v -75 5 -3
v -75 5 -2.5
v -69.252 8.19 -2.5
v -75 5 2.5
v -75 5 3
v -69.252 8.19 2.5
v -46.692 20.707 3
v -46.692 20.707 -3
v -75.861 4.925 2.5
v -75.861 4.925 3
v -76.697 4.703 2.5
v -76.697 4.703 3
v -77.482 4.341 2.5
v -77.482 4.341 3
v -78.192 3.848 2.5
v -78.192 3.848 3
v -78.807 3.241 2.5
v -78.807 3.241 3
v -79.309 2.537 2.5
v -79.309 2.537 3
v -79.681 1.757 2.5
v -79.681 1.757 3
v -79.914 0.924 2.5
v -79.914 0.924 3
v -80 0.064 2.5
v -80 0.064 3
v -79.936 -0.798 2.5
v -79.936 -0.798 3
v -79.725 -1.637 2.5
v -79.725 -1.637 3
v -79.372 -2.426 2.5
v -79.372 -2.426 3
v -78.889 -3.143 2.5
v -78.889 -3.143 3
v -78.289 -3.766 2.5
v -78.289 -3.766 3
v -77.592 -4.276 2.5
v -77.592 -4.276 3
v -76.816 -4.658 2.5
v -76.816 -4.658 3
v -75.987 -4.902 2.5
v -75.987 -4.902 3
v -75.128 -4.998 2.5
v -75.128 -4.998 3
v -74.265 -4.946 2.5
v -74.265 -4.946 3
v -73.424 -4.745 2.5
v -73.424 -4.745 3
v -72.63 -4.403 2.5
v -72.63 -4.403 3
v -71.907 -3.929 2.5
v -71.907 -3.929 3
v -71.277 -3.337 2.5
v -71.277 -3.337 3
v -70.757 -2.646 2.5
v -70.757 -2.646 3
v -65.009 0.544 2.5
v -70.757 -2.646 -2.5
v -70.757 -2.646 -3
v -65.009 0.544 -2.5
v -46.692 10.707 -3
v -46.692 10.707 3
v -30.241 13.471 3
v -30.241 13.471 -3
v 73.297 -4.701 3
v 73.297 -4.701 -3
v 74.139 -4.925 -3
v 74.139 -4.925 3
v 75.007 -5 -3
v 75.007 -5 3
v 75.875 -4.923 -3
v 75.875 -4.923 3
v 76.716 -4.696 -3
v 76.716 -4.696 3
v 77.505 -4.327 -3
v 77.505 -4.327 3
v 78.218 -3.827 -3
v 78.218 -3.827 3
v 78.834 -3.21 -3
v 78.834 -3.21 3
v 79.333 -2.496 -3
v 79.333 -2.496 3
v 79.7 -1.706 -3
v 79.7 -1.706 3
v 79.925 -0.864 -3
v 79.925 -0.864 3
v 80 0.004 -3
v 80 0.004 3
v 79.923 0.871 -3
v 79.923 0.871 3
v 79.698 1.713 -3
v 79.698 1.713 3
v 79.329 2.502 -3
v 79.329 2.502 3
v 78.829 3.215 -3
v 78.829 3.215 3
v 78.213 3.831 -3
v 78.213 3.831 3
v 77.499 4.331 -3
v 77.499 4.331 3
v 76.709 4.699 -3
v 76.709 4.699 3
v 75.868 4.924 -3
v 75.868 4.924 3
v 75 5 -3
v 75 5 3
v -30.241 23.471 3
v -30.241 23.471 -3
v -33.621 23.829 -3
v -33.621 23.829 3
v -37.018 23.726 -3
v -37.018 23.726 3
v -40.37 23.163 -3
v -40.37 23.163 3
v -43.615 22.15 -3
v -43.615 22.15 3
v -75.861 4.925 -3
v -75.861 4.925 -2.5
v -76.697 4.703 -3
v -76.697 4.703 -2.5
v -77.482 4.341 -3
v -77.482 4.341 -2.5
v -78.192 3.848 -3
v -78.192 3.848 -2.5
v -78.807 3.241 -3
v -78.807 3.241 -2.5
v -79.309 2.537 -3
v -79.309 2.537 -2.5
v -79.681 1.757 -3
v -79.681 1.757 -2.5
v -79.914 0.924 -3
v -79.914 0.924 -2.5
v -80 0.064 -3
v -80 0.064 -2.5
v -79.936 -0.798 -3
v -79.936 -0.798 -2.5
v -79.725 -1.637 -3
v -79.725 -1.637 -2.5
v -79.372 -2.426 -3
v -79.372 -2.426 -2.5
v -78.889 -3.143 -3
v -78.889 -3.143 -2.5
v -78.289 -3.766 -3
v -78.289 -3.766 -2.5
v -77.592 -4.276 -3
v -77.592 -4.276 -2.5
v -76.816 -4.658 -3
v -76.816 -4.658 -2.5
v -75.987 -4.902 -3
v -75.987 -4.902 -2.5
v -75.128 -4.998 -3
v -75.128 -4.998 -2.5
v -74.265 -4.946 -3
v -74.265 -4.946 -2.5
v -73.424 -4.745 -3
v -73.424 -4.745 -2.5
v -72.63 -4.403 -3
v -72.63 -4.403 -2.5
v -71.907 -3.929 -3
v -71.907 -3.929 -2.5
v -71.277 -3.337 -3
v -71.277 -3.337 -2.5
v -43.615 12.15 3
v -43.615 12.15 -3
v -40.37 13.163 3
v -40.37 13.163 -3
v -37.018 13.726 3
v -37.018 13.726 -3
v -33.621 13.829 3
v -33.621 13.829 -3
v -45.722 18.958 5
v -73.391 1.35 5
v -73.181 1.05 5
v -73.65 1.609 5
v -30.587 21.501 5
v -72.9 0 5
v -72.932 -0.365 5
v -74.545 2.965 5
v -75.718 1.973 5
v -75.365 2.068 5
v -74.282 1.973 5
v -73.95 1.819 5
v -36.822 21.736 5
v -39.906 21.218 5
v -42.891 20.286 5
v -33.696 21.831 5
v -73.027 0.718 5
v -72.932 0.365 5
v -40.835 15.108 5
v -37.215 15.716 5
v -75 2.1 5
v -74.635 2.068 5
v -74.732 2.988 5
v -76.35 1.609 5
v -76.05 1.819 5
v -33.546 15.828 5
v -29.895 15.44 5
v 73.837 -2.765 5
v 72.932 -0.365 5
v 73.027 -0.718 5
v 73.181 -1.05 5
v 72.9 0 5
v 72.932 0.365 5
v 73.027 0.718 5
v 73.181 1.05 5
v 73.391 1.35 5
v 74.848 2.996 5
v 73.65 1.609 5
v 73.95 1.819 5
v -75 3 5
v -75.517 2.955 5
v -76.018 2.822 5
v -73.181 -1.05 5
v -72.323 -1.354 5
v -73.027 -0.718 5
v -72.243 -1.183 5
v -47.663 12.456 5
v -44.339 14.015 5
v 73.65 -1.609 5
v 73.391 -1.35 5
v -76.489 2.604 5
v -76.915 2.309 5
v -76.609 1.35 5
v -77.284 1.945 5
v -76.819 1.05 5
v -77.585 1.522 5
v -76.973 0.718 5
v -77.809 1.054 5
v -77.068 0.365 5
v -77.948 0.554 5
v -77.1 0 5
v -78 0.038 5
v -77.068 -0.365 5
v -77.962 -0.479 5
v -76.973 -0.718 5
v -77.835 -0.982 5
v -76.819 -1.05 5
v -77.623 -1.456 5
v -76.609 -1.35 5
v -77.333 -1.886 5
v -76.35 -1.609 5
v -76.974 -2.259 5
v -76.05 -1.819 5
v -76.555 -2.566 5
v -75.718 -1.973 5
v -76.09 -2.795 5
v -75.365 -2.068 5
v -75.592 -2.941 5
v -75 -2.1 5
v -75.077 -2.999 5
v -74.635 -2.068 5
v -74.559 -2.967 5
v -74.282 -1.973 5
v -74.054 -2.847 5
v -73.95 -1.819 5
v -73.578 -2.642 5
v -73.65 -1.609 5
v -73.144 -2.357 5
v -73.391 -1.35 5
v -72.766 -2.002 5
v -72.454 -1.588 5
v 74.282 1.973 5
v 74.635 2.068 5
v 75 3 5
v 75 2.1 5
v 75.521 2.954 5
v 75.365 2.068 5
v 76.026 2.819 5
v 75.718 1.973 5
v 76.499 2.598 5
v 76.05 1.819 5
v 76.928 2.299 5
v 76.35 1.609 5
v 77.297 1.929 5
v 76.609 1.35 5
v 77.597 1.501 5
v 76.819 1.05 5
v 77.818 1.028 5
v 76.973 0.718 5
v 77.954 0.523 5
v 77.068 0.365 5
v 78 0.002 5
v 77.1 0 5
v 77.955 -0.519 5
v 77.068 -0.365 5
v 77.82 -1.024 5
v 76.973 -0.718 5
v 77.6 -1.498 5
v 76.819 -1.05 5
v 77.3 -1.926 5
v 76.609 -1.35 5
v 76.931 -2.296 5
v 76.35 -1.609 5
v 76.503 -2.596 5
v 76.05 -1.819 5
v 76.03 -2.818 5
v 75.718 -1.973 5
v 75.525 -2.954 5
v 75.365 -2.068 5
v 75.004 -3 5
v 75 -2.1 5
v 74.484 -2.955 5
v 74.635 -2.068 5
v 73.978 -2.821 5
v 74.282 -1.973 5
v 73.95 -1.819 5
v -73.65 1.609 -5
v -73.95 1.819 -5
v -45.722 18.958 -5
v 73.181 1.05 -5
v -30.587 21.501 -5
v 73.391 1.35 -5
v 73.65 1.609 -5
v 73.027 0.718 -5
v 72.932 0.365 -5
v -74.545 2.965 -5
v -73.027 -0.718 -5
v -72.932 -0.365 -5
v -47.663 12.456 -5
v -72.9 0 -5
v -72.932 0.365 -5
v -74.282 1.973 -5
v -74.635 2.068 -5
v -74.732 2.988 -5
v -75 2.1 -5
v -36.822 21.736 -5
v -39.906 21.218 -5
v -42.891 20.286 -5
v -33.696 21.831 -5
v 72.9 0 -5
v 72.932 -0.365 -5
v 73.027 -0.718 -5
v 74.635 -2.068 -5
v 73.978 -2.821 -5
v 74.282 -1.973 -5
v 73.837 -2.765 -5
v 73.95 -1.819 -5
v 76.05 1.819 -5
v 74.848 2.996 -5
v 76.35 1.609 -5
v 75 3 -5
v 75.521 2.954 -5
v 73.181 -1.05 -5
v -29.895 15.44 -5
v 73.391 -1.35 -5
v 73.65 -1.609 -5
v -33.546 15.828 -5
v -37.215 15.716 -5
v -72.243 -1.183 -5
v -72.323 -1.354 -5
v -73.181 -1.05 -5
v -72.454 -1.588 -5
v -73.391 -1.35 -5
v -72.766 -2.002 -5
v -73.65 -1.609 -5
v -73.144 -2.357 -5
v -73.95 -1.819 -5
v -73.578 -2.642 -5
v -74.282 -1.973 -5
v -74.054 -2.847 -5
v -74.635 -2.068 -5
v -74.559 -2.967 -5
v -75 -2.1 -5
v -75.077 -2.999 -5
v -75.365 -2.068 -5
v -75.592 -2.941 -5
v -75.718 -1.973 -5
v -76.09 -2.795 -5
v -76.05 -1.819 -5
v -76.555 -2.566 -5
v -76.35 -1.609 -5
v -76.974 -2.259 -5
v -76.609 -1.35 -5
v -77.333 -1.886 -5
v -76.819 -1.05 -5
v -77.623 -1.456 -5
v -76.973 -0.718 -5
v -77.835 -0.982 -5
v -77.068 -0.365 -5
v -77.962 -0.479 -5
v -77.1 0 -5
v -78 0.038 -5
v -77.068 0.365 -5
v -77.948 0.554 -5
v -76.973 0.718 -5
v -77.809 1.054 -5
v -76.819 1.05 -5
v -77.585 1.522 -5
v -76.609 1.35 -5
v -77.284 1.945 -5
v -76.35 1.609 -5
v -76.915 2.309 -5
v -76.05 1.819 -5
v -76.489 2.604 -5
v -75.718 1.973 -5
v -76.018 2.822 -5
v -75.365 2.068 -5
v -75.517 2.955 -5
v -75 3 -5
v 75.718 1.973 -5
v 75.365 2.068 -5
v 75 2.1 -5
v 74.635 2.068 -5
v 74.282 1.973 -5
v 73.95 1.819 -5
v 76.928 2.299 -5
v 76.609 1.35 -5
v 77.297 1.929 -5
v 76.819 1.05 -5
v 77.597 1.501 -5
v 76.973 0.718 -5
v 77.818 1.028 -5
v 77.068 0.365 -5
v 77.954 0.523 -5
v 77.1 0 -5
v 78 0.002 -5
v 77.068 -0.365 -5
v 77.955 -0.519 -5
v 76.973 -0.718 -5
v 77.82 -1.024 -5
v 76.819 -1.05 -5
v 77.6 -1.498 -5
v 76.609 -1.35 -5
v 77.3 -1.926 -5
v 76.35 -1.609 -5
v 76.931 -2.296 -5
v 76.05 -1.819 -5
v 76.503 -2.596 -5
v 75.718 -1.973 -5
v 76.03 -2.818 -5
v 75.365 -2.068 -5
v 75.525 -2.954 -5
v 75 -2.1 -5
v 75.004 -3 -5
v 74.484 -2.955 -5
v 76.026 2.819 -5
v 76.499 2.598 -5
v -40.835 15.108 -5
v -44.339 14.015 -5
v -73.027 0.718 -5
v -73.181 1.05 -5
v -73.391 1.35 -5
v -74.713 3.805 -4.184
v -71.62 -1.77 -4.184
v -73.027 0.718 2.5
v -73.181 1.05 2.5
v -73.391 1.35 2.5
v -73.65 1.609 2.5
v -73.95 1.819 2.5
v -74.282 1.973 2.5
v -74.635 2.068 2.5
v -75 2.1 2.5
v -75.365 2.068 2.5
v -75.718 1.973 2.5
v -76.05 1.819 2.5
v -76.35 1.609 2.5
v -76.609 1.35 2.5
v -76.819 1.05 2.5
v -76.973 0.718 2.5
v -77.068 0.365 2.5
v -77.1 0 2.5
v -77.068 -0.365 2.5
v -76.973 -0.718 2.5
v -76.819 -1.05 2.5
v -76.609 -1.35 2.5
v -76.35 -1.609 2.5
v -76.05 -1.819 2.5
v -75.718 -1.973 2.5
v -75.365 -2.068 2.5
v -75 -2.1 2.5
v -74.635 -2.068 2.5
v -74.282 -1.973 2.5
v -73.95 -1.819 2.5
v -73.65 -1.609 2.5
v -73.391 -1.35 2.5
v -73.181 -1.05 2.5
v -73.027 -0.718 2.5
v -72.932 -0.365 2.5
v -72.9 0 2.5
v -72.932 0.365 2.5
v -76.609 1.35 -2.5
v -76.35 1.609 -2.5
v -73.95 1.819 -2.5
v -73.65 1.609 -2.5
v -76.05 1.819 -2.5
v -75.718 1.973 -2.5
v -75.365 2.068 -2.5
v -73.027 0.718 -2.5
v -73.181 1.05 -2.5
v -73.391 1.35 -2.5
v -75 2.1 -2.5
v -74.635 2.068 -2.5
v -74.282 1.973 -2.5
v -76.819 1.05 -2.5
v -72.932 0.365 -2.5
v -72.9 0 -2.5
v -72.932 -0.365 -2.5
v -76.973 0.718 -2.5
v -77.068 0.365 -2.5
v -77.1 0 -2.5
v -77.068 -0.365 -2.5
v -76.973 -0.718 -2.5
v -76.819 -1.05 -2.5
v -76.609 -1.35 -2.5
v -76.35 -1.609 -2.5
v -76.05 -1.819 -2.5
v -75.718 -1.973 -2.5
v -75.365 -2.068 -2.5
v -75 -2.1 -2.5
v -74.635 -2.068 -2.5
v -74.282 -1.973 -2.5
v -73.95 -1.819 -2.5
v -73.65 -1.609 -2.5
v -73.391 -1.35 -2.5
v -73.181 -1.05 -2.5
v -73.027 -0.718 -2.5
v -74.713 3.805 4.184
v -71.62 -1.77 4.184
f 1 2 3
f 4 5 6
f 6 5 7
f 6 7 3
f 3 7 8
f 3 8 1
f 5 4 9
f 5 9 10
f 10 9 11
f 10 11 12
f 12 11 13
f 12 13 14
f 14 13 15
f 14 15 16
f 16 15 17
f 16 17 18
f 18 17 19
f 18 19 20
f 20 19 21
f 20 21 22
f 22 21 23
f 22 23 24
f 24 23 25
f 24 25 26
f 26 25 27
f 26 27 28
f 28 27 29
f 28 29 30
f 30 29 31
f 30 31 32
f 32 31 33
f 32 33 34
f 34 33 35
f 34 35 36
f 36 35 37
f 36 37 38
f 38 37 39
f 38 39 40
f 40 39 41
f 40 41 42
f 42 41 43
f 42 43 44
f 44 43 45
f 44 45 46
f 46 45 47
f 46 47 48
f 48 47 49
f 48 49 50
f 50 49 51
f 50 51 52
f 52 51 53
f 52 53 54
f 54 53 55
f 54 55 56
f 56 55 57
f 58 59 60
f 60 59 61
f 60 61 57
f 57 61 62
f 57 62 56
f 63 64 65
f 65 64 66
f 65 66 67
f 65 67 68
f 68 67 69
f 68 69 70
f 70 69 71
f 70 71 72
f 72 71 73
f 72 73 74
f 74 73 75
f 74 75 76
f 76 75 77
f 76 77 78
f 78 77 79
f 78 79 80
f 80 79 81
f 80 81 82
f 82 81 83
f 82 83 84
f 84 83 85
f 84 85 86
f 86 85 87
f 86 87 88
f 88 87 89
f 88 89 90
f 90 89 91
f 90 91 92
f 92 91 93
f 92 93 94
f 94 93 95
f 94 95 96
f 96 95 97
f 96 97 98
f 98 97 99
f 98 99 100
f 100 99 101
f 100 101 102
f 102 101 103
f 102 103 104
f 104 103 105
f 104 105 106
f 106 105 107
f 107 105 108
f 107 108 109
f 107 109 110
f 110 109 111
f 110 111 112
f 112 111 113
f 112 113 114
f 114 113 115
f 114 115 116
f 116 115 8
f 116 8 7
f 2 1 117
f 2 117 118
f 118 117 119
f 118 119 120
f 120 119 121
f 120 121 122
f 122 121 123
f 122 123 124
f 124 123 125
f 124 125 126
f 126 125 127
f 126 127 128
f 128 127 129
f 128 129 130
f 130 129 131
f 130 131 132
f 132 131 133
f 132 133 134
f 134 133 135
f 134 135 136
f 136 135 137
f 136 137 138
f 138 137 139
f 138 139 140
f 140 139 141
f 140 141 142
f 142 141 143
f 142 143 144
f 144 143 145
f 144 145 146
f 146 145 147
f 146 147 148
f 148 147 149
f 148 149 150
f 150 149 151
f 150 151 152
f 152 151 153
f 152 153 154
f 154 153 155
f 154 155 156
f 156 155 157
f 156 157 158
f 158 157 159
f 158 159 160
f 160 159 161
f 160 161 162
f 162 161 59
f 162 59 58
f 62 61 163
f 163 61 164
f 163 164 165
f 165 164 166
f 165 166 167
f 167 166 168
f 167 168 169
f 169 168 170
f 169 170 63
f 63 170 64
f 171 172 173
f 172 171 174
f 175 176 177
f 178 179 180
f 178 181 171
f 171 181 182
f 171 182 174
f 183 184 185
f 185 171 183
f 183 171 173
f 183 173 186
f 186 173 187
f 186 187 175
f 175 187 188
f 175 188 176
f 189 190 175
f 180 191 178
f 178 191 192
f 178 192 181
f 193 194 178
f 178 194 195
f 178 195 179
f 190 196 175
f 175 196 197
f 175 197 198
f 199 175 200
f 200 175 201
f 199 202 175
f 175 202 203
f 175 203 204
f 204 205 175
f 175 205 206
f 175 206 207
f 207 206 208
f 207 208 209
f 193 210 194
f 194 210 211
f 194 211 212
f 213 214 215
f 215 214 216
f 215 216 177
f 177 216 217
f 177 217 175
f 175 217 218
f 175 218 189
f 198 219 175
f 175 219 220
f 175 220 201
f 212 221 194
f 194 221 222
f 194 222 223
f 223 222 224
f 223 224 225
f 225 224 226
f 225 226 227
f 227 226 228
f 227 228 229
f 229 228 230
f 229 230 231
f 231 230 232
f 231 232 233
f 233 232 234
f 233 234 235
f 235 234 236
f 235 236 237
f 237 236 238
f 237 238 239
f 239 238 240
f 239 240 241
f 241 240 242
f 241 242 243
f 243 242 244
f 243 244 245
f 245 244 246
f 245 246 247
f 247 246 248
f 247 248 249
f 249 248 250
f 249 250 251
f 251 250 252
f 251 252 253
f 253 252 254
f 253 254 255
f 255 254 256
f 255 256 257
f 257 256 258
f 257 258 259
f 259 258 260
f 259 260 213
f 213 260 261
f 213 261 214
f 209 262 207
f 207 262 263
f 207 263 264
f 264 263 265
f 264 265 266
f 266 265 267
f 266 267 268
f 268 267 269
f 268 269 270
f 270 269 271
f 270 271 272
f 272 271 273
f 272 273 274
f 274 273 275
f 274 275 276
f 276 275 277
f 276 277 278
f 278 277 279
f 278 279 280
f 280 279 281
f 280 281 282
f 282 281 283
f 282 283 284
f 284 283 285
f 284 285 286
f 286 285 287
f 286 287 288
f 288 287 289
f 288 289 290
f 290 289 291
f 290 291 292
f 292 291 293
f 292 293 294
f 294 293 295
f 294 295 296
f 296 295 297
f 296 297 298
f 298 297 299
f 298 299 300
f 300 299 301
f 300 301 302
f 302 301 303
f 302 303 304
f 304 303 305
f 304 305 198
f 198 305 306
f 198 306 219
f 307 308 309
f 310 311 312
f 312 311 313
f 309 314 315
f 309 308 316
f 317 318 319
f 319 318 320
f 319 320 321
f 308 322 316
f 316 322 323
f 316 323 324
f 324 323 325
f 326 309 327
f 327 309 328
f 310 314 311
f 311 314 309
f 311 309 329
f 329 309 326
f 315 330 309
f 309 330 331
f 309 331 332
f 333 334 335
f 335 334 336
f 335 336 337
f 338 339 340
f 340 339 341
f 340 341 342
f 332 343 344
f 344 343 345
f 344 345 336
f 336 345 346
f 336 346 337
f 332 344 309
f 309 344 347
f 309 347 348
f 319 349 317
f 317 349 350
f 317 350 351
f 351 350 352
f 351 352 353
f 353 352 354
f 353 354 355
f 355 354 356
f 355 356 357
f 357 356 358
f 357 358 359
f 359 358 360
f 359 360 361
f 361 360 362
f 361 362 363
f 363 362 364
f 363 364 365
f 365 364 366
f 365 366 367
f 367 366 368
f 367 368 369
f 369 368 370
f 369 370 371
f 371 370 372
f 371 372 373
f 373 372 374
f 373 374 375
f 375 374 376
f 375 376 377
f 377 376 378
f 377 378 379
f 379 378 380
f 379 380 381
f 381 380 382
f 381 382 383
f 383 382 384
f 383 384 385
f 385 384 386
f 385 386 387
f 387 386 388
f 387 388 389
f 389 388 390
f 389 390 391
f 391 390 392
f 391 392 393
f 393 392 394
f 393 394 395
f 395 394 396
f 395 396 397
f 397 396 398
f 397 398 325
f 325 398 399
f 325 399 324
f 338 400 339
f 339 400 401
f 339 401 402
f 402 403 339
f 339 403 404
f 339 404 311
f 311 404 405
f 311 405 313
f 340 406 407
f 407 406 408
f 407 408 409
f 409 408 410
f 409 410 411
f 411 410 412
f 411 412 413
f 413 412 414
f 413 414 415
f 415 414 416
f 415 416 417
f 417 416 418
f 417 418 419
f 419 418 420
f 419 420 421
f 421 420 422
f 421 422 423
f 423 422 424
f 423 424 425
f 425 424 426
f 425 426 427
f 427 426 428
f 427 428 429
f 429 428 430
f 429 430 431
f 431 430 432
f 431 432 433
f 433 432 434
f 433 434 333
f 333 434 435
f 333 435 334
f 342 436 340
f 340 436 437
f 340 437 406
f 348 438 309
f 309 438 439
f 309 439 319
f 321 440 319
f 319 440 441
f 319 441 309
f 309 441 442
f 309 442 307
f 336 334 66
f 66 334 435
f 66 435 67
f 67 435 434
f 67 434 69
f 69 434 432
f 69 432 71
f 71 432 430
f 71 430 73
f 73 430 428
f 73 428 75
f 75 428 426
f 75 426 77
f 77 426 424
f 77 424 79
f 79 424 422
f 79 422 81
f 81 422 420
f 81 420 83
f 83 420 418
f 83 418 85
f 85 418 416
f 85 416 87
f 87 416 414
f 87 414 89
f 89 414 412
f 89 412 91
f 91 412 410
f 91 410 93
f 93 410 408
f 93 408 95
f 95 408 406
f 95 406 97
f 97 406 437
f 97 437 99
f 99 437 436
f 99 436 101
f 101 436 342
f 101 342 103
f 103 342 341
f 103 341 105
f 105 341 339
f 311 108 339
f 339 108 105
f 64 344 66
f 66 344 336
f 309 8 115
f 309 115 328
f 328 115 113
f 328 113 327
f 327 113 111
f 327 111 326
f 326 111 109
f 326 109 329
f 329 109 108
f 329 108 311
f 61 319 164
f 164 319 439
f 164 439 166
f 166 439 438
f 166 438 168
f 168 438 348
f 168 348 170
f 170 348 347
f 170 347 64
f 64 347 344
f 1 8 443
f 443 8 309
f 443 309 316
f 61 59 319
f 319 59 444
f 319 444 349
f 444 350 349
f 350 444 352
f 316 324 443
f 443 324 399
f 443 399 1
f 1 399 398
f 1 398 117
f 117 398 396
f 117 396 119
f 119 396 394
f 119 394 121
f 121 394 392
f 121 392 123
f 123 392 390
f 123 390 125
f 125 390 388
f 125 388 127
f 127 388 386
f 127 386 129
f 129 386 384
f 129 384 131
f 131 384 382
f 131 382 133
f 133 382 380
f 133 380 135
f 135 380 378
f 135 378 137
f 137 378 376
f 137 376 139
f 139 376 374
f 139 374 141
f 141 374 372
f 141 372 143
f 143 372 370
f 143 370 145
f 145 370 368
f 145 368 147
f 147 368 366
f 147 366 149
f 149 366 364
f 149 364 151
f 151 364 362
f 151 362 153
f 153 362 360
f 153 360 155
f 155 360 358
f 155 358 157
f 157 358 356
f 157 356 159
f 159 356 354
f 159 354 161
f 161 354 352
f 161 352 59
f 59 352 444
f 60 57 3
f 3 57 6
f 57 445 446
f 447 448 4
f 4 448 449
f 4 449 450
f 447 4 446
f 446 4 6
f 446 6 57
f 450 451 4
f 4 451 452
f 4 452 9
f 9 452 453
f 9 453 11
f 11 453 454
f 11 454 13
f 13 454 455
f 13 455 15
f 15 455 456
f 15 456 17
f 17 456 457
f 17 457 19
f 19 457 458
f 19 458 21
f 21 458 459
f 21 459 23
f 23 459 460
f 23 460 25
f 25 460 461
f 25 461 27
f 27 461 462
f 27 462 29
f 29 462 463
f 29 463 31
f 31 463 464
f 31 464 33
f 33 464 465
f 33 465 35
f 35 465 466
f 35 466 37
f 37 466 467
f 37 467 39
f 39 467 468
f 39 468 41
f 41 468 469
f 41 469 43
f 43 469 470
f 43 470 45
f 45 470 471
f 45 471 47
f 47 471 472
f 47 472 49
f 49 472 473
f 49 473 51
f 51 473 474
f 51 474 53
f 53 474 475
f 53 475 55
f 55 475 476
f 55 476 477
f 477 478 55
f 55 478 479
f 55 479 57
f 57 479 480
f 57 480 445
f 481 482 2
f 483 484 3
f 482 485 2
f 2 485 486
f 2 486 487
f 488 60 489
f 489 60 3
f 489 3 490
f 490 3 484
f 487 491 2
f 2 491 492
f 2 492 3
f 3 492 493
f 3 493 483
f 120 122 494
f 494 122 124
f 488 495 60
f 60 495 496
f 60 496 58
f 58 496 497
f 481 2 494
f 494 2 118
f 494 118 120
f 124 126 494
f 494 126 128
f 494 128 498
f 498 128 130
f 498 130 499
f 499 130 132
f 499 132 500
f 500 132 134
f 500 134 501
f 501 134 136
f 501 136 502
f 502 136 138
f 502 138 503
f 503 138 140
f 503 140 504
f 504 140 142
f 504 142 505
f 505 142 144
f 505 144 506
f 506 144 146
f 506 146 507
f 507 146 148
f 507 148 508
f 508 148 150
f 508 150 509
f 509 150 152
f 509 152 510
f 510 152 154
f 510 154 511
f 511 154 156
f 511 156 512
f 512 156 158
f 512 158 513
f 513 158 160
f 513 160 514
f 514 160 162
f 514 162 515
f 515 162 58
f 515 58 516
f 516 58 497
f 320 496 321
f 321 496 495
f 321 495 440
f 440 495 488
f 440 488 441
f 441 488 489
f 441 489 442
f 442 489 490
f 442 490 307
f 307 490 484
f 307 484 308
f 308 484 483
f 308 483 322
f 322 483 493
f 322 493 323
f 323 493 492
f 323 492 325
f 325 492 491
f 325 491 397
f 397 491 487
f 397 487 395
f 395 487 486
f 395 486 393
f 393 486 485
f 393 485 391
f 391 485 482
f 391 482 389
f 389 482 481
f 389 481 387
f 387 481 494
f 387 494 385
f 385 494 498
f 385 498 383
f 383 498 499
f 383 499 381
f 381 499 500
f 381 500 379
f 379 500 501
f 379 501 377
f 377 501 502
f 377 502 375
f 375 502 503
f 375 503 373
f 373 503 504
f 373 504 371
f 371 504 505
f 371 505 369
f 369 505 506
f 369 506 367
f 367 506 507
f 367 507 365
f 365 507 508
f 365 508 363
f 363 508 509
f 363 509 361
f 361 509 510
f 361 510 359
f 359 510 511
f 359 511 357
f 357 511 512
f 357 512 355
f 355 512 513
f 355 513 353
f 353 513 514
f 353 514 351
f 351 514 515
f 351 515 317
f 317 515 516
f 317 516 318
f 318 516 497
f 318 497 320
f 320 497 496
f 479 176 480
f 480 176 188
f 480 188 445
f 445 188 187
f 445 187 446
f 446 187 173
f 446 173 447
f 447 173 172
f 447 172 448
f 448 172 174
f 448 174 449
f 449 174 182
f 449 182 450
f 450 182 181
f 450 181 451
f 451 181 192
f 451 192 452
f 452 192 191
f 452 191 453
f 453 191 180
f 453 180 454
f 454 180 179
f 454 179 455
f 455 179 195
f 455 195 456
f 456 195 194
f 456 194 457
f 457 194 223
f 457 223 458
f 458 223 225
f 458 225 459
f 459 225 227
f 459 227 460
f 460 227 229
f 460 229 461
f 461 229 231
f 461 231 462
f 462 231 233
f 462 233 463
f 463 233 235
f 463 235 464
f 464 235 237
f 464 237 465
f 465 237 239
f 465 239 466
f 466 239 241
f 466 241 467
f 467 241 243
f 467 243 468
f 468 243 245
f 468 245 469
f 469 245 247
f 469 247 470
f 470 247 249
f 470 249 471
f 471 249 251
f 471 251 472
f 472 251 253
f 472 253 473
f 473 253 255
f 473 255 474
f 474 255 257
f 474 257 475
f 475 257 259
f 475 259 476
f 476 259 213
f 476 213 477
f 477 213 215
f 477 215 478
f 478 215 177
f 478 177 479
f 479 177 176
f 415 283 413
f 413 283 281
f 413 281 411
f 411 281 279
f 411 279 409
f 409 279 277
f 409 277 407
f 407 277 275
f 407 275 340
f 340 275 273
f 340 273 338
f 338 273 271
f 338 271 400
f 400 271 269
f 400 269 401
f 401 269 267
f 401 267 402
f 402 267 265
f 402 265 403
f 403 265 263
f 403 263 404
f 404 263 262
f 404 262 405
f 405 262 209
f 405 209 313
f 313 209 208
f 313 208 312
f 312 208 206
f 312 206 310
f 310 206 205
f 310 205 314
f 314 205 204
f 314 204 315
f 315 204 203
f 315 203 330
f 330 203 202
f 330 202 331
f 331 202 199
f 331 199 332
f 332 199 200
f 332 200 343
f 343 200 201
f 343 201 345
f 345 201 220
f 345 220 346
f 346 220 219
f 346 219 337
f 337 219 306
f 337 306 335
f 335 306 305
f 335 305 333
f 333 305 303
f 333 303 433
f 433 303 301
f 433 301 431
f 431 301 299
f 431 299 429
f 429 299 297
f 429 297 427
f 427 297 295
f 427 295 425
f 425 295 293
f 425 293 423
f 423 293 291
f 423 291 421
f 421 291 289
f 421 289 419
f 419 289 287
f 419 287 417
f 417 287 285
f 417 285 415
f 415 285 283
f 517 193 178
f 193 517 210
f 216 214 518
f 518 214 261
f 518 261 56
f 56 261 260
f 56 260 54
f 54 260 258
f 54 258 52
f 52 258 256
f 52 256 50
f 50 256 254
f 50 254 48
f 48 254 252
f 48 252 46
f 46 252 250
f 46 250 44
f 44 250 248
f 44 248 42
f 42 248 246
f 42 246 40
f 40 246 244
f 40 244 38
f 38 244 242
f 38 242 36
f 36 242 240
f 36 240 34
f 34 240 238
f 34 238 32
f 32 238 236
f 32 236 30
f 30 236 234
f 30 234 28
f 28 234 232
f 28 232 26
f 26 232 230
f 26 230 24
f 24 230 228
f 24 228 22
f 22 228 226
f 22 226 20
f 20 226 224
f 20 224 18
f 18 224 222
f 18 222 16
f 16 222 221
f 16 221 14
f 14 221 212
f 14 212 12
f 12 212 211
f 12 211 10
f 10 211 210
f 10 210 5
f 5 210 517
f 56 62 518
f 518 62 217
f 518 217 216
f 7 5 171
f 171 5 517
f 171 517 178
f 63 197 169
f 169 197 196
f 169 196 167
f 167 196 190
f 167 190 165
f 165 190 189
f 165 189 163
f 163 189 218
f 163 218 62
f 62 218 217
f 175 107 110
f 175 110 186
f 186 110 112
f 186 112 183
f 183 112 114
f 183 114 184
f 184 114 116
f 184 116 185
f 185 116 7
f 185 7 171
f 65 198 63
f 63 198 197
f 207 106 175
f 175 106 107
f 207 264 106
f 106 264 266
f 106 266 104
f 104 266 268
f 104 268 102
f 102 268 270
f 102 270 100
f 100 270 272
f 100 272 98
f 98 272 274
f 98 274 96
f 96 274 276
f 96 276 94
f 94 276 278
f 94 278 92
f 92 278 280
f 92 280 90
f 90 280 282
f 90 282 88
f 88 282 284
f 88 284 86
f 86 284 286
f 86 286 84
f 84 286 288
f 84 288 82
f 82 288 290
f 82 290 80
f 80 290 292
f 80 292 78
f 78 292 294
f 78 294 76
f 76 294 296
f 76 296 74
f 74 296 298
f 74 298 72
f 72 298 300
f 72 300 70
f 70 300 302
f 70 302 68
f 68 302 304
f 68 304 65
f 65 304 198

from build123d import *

# Parameters (mm, degrees)
BOSS_EXTRUDE2_DEPTH     = 5
CHAMFER2_SIZE           = 2
CUT_EXTRUDE2_DEPTH      = 4
CUT_EXTRUDE2_DEPTH_BACK = 14
SKETCH3_W               = 18
SKETCH3_H               = 5
SKETCH4_R               = 2.1
CUT_EXTRUDE3_DEPTH      = 85.075405536
CHAMFER3_SIZE           = 2


with BuildPart() as part:
    # Sketch1 → Boss-Extrude2 (new, symmetric)
    with BuildSketch(Plane.XY):
        with BuildLine():
            ThreePointArc((-75, 5), (-79.372054336, -2.425930931), (-70.757479261, -2.645943647))
            Line((-70.757479261, -2.645943647), (-46.692296896, 10.707154411))
            ThreePointArc((-46.692296896, 10.707154411), (-38.703947646, 13.501488579), (-30.241024495, 13.470522187))
            Line((-30.241024495, 13.470522187), (73.297376685, -4.701177921))
            ThreePointArc((73.297376685, -4.701177921), (79.924727891, -0.864323549), (75, 5))
            Line((75, 5), (-30.241024495, 23.470522187))
            ThreePointArc((-30.241024495, 23.470522187), (-38.703947646, 23.501488579), (-46.692296896, 20.707154411))
            Line((-46.692296896, 20.707154411), (-75, 5))
        make_face()
    extrude(amount=BOSS_EXTRUDE2_DEPTH, both=True)

    # Chamfer2
    chamfer2_edges = [part.edges().sort_by_distance(p)[0] for p in [
        (-79.372054336, -2.425930931, -5),
        (-60.846148448, 12.853577206, -5),
        (-38.703947646, 23.501488579, -5),
        (22.379487752, 14.235261094, -5),
        (79.924727891, -0.864323549, -5),
        (21.528176095, 4.384672133, -5),
        (-38.703947646, 13.501488579, -5),
        (-58.724888079, 4.030605382, -5),
    ]]
    chamfer(chamfer2_edges, length=CHAMFER2_SIZE)

    # Sketch3 → Cut-Extrude2 (cut, two sides: drawn at the far end of the back side and taken through both)
    with BuildSketch(Plane(origin=(-19.776683018, 35.641877363, 0), x_dir=(0.8744108672058327, 0.48518618623405146, 0), z_dir=(-0.48518618623405146, 0.8744108672058327, 0)).offset(-CUT_EXTRUDE2_DEPTH_BACK)):
        with Locations((-65.58081504, 0)):
            Rectangle(SKETCH3_W, SKETCH3_H)
    extrude(amount=CUT_EXTRUDE2_DEPTH + CUT_EXTRUDE2_DEPTH_BACK, mode=Mode.SUBTRACT)

    # Sketch4 → Cut-Extrude3 (cut, through all)
    with BuildSketch(Plane.XY.offset(5)):
        with Locations((-75, 0)):
            Circle(SKETCH4_R)
        with Locations((75, 0)):
            Circle(SKETCH4_R)
    extrude(amount=-CUT_EXTRUDE3_DEPTH, mode=Mode.SUBTRACT)

    # Chamfer3
    chamfer3_edges = [part.edges().sort_by_distance(p)[0] for p in [
        (79.924727891, -0.864323549, 5),
        (21.528176095, 4.384672133, 5),
        (-38.703947646, 13.501488579, 5),
        (-58.724888079, 4.030605382, 5),
        (-79.372054336, -2.425930931, 5),
        (-60.846148448, 12.853577206, 5),
        (-38.703947646, 23.501488579, 5),
        (22.379487752, 14.235261094, 5),
    ]]
    chamfer(chamfer3_edges, length=CHAMFER3_SIZE)


solid = part.part
